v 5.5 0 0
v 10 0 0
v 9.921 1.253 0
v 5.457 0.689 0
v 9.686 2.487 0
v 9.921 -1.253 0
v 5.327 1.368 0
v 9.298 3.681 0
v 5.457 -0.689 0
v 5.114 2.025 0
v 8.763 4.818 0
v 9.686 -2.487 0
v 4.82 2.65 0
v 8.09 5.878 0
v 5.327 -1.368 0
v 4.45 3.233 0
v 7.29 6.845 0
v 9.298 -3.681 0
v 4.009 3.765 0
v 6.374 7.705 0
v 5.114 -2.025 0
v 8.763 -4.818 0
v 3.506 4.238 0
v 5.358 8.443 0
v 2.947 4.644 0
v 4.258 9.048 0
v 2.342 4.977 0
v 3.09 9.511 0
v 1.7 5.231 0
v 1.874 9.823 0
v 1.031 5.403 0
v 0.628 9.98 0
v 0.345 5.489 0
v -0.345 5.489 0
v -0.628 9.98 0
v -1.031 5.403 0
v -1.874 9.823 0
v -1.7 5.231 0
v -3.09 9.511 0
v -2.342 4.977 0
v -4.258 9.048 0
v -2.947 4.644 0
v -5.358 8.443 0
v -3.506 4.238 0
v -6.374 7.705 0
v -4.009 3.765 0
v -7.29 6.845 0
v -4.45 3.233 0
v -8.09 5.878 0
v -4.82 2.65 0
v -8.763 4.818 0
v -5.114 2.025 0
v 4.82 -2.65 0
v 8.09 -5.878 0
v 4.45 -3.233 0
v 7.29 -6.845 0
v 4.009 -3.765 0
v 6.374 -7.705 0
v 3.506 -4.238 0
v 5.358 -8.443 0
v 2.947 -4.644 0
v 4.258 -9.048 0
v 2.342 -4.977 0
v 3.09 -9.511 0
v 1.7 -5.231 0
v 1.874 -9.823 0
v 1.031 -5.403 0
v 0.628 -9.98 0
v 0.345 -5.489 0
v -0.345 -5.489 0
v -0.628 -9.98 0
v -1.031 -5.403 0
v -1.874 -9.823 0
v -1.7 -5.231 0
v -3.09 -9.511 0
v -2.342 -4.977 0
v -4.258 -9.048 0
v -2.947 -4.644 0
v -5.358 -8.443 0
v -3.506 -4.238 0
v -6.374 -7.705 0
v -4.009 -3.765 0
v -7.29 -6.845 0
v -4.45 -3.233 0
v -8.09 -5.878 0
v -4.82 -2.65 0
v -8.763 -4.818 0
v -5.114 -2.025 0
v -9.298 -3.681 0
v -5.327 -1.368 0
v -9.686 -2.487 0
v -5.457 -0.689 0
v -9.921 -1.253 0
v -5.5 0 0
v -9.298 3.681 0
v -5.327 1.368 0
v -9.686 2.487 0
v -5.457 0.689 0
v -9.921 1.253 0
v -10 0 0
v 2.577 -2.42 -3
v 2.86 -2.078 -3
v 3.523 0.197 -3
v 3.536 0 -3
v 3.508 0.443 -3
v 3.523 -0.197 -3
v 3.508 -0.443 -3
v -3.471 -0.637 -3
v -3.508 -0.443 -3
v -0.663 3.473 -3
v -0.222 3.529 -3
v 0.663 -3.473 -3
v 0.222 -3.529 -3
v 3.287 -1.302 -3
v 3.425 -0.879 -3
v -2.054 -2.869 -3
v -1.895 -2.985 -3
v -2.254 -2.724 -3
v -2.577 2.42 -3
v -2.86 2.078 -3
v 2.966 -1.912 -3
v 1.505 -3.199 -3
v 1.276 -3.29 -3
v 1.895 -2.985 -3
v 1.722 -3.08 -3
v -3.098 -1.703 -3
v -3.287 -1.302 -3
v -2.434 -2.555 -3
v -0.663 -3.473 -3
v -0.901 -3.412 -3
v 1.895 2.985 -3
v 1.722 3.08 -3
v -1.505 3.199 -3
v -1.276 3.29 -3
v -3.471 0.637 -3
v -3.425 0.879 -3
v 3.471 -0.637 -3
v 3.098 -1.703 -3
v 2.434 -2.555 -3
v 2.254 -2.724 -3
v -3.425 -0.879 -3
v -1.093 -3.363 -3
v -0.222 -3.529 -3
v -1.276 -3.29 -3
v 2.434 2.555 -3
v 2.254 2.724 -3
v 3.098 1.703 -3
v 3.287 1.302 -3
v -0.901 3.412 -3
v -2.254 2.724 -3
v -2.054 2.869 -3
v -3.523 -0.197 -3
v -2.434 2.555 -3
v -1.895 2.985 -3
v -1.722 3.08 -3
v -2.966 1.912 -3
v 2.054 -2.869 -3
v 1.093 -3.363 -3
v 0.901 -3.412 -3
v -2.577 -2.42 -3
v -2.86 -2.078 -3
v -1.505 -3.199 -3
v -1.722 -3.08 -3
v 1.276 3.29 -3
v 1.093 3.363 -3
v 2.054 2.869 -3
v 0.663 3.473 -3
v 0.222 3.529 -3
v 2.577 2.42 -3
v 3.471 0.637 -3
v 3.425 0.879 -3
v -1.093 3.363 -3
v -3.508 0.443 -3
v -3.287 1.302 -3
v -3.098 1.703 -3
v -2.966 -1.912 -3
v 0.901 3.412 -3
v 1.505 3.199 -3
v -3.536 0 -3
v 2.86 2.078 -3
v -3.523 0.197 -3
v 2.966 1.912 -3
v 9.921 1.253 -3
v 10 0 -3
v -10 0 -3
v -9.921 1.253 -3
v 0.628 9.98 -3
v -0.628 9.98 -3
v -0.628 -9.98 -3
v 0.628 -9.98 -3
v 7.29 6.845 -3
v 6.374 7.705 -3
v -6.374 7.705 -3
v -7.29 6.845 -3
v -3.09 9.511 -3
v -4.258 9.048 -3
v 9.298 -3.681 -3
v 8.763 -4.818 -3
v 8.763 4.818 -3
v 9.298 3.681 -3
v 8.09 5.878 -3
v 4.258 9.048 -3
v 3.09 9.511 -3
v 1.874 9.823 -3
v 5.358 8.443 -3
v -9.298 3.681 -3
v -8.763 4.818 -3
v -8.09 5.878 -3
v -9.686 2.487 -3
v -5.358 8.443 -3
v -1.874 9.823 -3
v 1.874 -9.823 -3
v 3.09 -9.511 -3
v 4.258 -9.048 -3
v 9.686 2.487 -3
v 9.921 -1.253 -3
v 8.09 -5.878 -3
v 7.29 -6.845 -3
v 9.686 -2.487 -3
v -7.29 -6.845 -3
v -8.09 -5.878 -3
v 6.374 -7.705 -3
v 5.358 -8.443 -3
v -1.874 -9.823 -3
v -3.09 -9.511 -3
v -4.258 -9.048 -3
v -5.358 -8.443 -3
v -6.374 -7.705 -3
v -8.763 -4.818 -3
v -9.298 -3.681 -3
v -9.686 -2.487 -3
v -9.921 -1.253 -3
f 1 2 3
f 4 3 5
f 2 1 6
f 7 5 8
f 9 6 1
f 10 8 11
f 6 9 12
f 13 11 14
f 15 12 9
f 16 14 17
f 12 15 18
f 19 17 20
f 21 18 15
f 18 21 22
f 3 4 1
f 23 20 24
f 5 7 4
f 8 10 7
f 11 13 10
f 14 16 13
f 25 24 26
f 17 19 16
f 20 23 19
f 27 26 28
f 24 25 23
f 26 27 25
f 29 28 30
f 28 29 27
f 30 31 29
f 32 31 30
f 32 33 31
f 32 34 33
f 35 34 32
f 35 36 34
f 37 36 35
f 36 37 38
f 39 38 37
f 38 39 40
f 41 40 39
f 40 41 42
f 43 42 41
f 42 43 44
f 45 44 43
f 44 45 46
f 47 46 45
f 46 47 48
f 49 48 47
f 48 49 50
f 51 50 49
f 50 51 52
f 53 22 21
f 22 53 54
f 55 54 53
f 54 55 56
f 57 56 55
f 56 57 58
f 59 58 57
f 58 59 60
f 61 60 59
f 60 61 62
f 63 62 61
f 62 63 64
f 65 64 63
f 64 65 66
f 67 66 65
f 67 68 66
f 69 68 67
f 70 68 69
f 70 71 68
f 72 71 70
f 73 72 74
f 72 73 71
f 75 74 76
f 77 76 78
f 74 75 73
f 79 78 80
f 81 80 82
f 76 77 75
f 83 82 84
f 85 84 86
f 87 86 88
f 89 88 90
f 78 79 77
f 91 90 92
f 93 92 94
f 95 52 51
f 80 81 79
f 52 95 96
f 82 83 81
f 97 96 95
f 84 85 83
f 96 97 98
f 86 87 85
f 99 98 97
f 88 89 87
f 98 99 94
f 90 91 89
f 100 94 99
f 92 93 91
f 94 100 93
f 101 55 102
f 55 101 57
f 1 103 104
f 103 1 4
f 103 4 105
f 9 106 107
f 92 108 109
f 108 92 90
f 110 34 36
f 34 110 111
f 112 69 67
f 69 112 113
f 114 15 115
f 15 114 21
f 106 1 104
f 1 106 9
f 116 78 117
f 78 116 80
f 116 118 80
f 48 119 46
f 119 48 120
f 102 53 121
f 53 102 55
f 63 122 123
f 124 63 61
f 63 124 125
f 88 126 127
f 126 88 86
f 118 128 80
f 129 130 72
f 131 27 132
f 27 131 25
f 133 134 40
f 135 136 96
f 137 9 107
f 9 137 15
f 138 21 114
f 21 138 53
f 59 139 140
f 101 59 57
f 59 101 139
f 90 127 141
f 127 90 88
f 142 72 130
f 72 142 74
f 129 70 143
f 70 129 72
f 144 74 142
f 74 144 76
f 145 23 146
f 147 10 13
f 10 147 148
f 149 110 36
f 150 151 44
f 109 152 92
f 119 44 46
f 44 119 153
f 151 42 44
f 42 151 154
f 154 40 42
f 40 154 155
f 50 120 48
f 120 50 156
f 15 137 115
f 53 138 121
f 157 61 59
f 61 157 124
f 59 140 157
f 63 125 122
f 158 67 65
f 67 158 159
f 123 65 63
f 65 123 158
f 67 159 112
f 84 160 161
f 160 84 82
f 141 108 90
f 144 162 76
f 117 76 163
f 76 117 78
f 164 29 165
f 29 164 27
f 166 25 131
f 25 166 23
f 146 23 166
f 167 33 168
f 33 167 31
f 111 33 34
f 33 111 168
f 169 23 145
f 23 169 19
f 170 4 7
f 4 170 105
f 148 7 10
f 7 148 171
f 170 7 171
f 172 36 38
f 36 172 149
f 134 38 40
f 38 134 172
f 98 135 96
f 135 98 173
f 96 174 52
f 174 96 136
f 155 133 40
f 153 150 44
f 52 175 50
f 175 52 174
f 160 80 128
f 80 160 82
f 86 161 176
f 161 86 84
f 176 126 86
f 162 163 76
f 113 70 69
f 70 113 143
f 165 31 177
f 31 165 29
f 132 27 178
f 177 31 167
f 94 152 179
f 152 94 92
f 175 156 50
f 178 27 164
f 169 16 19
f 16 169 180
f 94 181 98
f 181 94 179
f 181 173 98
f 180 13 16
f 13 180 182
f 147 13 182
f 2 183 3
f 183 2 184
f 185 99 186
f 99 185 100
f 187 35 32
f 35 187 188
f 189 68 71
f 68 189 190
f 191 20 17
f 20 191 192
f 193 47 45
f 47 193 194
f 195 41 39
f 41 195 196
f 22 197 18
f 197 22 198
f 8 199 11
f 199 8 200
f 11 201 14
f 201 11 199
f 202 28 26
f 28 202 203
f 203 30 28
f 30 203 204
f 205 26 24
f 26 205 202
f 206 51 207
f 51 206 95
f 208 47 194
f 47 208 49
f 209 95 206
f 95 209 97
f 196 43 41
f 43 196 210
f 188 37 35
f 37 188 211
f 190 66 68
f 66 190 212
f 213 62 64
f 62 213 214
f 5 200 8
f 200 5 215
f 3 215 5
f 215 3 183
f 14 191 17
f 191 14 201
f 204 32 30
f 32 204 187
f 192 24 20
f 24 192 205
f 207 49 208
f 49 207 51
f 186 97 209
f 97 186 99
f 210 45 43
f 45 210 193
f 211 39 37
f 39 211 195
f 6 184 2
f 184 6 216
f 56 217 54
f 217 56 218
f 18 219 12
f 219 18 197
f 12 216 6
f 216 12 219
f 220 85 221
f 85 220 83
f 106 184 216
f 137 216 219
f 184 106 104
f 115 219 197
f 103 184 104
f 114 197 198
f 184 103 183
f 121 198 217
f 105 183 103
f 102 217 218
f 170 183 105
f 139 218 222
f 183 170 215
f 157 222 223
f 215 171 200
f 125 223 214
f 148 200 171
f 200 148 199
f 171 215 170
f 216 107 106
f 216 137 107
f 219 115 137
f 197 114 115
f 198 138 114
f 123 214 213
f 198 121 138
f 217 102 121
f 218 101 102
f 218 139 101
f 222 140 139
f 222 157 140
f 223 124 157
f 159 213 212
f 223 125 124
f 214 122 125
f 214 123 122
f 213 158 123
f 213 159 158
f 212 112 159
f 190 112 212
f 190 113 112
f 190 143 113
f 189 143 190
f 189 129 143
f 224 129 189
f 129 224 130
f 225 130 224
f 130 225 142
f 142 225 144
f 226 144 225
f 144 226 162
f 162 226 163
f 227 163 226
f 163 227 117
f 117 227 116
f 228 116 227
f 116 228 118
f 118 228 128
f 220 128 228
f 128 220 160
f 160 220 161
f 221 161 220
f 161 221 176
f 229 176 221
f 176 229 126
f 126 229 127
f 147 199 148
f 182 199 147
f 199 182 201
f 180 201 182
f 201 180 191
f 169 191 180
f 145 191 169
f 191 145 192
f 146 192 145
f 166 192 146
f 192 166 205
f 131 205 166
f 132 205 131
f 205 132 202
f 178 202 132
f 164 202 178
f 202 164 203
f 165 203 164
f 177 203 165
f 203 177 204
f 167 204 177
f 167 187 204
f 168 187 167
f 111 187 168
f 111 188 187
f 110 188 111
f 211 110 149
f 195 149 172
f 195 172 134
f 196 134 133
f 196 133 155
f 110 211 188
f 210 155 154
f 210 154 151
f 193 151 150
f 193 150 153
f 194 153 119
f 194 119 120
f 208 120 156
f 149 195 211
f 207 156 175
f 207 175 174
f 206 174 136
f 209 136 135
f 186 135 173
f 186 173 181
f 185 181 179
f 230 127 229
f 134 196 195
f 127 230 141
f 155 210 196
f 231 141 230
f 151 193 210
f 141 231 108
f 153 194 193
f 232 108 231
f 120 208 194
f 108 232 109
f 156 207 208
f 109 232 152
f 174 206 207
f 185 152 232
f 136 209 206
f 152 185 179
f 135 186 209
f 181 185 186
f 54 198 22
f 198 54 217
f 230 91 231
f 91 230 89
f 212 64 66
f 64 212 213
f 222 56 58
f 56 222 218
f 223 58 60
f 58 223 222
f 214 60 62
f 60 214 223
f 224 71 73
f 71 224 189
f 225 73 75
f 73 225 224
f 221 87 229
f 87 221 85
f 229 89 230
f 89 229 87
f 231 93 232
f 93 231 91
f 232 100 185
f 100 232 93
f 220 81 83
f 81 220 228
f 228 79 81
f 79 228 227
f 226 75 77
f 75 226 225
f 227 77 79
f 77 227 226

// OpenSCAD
$fn = 50;

difference() {
	union() {
		translate(v = [0, 0, -3.0]) {
			cylinder(h = 3, r = 10.0);
		}
	}
	union() {
		translate(v = [0, 0, 0]) {
			rotate(a = [0, 0, 0]) {
				difference() {
					union() {
						translate(v = [0, 0, -6.0]) {
							cylinder(h = 6, r = 2.25);
						}
						translate(v = [0, 0, -4.2]) {
							cylinder(h = 4.2, r1 = 2.75, r2 = 5.5);
						}
						translate(v = [0, 0, -6.0]) {
							cylinder(h = 6, r = 2.75);
						}
						translate(v = [0, 0, -6.0]) {
							cylinder(h = 6, r = 2.25);
						}
					}
					union();
				}
			}
		}
	}
}
